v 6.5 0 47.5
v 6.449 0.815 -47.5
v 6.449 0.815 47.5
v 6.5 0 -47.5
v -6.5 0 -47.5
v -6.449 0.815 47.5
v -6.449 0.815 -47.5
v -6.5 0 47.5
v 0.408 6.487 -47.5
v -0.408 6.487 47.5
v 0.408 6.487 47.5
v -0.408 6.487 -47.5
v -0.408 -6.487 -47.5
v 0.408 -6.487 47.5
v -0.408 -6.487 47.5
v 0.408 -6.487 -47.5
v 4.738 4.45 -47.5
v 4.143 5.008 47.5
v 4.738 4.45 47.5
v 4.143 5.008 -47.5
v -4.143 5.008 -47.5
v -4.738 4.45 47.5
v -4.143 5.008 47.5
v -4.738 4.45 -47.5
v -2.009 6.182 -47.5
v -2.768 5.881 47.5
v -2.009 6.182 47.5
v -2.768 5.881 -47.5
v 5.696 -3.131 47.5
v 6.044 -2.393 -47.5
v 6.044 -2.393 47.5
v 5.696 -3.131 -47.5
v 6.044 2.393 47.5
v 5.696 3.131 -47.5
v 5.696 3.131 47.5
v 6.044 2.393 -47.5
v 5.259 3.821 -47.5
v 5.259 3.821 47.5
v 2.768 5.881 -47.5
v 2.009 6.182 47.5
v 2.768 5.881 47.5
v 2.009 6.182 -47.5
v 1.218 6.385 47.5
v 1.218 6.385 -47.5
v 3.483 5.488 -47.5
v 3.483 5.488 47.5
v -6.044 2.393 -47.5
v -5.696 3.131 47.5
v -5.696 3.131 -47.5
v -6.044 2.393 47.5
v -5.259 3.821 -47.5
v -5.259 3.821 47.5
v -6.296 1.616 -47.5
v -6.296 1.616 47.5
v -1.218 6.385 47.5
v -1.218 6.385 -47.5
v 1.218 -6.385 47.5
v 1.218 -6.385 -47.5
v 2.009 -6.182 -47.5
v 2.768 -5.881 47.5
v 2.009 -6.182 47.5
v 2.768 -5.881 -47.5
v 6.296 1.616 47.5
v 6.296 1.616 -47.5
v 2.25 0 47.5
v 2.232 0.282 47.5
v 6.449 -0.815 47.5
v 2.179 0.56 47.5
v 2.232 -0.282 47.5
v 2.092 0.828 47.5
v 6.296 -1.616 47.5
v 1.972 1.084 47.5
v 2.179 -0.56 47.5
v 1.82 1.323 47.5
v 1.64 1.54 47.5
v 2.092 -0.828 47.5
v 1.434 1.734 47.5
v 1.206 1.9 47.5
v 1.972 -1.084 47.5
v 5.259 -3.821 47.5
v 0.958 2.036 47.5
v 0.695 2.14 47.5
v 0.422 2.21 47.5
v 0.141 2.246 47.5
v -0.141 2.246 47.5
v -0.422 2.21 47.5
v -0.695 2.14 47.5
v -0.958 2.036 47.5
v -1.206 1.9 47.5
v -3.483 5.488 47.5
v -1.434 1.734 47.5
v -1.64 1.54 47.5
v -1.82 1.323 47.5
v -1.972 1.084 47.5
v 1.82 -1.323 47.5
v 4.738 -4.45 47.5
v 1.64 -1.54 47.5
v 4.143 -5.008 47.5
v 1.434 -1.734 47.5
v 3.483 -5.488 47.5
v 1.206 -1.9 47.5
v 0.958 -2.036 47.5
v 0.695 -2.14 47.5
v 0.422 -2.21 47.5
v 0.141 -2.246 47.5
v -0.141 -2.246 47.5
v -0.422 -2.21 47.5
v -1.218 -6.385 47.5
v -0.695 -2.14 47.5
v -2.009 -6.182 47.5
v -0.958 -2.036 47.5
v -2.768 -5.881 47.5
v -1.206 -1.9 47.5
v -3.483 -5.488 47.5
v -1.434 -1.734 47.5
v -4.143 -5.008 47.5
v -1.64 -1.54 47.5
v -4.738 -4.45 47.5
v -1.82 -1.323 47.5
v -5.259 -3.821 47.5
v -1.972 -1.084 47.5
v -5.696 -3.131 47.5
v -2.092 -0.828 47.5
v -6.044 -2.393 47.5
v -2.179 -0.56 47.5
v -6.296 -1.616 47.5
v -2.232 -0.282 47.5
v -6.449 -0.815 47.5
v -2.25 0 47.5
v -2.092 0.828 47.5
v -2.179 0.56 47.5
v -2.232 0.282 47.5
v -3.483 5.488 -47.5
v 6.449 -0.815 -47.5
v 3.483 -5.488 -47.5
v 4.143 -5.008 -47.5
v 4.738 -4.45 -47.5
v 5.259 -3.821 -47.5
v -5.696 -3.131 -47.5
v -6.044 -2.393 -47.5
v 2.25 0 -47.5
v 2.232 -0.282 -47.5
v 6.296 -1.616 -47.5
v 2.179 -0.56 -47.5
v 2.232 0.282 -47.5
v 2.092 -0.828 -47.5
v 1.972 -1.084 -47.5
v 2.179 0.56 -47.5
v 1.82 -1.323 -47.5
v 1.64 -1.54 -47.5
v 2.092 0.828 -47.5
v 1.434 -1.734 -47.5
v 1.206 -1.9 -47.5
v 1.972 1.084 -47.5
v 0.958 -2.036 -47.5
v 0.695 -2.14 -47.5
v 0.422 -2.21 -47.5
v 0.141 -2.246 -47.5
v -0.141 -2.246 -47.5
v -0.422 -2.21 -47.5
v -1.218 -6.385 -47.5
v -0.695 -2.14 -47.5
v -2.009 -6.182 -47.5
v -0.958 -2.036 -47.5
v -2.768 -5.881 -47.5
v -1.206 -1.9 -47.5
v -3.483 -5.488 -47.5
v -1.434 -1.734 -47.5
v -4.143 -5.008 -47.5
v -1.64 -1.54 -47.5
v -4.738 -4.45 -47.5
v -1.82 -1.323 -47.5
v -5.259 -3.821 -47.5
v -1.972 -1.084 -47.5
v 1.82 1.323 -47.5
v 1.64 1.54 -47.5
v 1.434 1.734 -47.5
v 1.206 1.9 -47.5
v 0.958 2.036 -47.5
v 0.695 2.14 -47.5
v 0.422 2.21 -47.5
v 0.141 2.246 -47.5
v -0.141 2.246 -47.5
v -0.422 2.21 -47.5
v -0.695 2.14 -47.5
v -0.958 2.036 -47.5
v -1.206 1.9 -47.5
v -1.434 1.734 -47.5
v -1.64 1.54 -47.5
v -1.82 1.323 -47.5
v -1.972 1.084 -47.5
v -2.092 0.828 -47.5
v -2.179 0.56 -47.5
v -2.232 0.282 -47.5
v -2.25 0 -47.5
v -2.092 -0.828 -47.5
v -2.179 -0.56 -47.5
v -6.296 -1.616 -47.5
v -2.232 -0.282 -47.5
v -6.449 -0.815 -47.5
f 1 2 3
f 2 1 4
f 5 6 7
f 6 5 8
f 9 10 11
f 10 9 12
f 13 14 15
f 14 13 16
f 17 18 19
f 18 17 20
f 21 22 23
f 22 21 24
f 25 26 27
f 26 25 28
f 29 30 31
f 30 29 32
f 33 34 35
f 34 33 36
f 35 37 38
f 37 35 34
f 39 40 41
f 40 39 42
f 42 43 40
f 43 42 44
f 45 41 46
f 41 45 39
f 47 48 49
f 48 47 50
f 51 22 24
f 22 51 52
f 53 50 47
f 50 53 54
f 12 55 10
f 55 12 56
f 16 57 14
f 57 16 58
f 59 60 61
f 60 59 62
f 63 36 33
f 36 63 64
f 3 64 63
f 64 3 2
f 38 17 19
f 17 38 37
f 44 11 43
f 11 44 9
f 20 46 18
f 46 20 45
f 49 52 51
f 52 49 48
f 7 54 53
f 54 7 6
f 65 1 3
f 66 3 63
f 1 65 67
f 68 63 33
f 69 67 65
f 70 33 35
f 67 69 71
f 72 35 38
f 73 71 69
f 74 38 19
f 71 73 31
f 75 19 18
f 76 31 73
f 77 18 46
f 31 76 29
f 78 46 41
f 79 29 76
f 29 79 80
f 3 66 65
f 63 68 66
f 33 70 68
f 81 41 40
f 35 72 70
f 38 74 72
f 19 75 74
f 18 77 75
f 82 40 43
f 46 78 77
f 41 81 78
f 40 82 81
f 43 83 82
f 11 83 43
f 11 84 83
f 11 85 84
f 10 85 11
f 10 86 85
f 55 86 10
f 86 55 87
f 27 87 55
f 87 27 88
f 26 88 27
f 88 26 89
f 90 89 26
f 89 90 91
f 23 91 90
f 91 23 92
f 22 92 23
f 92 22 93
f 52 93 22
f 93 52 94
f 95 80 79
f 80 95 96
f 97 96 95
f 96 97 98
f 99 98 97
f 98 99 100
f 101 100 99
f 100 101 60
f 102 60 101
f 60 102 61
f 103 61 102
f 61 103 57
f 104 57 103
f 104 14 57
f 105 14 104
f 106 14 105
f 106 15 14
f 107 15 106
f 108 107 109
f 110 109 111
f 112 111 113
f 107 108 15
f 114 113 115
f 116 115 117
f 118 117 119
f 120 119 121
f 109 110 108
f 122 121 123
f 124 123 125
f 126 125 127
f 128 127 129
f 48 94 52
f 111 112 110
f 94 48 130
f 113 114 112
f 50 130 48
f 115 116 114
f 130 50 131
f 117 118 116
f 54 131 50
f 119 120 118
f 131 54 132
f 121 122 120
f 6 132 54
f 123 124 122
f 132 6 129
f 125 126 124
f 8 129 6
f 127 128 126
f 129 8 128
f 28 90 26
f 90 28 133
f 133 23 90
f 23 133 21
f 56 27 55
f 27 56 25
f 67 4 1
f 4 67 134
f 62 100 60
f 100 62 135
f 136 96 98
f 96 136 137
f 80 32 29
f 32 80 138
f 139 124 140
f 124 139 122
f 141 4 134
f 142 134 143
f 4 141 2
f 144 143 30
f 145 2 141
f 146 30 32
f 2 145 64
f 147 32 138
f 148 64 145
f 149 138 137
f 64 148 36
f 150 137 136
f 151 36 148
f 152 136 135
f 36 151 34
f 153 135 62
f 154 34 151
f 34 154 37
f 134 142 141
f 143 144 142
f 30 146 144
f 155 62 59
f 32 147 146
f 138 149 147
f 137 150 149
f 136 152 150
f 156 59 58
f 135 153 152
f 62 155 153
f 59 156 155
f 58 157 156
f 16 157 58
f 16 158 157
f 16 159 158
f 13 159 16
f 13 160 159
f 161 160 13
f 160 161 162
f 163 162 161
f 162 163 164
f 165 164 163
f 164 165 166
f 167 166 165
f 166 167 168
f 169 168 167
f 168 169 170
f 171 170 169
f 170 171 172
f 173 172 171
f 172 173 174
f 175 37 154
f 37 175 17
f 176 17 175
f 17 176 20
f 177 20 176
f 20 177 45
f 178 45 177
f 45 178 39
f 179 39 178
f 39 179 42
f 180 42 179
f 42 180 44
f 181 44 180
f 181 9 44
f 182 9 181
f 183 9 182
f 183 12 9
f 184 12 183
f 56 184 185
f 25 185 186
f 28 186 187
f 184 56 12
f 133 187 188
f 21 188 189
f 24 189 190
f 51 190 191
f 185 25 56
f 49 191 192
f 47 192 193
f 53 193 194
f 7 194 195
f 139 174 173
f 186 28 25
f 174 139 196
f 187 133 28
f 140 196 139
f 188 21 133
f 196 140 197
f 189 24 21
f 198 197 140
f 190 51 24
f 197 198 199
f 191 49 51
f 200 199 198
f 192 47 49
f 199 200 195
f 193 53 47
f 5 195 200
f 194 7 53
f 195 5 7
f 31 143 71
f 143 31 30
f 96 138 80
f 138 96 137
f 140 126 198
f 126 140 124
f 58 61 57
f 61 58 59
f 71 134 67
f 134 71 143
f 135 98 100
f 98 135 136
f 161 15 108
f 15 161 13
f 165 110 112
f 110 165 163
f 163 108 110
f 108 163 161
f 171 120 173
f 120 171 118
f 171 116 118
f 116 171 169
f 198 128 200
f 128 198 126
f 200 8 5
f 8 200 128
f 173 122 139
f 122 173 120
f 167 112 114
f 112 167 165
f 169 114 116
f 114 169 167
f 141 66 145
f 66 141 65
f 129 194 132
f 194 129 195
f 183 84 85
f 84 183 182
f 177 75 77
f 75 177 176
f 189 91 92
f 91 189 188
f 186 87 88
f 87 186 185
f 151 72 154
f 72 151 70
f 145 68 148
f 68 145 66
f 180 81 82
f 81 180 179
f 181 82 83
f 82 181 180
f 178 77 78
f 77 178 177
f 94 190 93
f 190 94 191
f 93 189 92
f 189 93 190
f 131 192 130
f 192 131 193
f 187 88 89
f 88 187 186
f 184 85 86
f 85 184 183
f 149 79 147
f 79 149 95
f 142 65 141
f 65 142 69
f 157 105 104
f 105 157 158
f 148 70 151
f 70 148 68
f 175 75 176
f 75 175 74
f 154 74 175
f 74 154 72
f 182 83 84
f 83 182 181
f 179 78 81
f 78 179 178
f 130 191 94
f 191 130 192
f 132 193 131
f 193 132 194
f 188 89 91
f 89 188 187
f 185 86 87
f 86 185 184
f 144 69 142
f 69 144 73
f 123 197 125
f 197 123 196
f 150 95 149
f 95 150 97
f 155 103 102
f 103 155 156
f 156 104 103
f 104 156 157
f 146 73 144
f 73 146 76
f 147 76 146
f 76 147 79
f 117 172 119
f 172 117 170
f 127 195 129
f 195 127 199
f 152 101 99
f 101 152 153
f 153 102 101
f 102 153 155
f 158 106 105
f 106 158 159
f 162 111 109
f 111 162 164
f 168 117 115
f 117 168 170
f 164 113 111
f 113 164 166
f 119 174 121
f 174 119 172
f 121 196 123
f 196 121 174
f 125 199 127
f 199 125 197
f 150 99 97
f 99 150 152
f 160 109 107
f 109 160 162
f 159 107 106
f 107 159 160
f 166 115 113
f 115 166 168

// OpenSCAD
$fn = 50;


difference() {
	union() {
		translate(v = [0, 0, -47.5000000000]) {
			cylinder(h = 95, r = 6.5000000000);
		}
	}
	union() {
		translate(v = [0, 0, -100.0000000000]) {
			cylinder(h = 200, r = 2.2500000000);
		}
	}
}
